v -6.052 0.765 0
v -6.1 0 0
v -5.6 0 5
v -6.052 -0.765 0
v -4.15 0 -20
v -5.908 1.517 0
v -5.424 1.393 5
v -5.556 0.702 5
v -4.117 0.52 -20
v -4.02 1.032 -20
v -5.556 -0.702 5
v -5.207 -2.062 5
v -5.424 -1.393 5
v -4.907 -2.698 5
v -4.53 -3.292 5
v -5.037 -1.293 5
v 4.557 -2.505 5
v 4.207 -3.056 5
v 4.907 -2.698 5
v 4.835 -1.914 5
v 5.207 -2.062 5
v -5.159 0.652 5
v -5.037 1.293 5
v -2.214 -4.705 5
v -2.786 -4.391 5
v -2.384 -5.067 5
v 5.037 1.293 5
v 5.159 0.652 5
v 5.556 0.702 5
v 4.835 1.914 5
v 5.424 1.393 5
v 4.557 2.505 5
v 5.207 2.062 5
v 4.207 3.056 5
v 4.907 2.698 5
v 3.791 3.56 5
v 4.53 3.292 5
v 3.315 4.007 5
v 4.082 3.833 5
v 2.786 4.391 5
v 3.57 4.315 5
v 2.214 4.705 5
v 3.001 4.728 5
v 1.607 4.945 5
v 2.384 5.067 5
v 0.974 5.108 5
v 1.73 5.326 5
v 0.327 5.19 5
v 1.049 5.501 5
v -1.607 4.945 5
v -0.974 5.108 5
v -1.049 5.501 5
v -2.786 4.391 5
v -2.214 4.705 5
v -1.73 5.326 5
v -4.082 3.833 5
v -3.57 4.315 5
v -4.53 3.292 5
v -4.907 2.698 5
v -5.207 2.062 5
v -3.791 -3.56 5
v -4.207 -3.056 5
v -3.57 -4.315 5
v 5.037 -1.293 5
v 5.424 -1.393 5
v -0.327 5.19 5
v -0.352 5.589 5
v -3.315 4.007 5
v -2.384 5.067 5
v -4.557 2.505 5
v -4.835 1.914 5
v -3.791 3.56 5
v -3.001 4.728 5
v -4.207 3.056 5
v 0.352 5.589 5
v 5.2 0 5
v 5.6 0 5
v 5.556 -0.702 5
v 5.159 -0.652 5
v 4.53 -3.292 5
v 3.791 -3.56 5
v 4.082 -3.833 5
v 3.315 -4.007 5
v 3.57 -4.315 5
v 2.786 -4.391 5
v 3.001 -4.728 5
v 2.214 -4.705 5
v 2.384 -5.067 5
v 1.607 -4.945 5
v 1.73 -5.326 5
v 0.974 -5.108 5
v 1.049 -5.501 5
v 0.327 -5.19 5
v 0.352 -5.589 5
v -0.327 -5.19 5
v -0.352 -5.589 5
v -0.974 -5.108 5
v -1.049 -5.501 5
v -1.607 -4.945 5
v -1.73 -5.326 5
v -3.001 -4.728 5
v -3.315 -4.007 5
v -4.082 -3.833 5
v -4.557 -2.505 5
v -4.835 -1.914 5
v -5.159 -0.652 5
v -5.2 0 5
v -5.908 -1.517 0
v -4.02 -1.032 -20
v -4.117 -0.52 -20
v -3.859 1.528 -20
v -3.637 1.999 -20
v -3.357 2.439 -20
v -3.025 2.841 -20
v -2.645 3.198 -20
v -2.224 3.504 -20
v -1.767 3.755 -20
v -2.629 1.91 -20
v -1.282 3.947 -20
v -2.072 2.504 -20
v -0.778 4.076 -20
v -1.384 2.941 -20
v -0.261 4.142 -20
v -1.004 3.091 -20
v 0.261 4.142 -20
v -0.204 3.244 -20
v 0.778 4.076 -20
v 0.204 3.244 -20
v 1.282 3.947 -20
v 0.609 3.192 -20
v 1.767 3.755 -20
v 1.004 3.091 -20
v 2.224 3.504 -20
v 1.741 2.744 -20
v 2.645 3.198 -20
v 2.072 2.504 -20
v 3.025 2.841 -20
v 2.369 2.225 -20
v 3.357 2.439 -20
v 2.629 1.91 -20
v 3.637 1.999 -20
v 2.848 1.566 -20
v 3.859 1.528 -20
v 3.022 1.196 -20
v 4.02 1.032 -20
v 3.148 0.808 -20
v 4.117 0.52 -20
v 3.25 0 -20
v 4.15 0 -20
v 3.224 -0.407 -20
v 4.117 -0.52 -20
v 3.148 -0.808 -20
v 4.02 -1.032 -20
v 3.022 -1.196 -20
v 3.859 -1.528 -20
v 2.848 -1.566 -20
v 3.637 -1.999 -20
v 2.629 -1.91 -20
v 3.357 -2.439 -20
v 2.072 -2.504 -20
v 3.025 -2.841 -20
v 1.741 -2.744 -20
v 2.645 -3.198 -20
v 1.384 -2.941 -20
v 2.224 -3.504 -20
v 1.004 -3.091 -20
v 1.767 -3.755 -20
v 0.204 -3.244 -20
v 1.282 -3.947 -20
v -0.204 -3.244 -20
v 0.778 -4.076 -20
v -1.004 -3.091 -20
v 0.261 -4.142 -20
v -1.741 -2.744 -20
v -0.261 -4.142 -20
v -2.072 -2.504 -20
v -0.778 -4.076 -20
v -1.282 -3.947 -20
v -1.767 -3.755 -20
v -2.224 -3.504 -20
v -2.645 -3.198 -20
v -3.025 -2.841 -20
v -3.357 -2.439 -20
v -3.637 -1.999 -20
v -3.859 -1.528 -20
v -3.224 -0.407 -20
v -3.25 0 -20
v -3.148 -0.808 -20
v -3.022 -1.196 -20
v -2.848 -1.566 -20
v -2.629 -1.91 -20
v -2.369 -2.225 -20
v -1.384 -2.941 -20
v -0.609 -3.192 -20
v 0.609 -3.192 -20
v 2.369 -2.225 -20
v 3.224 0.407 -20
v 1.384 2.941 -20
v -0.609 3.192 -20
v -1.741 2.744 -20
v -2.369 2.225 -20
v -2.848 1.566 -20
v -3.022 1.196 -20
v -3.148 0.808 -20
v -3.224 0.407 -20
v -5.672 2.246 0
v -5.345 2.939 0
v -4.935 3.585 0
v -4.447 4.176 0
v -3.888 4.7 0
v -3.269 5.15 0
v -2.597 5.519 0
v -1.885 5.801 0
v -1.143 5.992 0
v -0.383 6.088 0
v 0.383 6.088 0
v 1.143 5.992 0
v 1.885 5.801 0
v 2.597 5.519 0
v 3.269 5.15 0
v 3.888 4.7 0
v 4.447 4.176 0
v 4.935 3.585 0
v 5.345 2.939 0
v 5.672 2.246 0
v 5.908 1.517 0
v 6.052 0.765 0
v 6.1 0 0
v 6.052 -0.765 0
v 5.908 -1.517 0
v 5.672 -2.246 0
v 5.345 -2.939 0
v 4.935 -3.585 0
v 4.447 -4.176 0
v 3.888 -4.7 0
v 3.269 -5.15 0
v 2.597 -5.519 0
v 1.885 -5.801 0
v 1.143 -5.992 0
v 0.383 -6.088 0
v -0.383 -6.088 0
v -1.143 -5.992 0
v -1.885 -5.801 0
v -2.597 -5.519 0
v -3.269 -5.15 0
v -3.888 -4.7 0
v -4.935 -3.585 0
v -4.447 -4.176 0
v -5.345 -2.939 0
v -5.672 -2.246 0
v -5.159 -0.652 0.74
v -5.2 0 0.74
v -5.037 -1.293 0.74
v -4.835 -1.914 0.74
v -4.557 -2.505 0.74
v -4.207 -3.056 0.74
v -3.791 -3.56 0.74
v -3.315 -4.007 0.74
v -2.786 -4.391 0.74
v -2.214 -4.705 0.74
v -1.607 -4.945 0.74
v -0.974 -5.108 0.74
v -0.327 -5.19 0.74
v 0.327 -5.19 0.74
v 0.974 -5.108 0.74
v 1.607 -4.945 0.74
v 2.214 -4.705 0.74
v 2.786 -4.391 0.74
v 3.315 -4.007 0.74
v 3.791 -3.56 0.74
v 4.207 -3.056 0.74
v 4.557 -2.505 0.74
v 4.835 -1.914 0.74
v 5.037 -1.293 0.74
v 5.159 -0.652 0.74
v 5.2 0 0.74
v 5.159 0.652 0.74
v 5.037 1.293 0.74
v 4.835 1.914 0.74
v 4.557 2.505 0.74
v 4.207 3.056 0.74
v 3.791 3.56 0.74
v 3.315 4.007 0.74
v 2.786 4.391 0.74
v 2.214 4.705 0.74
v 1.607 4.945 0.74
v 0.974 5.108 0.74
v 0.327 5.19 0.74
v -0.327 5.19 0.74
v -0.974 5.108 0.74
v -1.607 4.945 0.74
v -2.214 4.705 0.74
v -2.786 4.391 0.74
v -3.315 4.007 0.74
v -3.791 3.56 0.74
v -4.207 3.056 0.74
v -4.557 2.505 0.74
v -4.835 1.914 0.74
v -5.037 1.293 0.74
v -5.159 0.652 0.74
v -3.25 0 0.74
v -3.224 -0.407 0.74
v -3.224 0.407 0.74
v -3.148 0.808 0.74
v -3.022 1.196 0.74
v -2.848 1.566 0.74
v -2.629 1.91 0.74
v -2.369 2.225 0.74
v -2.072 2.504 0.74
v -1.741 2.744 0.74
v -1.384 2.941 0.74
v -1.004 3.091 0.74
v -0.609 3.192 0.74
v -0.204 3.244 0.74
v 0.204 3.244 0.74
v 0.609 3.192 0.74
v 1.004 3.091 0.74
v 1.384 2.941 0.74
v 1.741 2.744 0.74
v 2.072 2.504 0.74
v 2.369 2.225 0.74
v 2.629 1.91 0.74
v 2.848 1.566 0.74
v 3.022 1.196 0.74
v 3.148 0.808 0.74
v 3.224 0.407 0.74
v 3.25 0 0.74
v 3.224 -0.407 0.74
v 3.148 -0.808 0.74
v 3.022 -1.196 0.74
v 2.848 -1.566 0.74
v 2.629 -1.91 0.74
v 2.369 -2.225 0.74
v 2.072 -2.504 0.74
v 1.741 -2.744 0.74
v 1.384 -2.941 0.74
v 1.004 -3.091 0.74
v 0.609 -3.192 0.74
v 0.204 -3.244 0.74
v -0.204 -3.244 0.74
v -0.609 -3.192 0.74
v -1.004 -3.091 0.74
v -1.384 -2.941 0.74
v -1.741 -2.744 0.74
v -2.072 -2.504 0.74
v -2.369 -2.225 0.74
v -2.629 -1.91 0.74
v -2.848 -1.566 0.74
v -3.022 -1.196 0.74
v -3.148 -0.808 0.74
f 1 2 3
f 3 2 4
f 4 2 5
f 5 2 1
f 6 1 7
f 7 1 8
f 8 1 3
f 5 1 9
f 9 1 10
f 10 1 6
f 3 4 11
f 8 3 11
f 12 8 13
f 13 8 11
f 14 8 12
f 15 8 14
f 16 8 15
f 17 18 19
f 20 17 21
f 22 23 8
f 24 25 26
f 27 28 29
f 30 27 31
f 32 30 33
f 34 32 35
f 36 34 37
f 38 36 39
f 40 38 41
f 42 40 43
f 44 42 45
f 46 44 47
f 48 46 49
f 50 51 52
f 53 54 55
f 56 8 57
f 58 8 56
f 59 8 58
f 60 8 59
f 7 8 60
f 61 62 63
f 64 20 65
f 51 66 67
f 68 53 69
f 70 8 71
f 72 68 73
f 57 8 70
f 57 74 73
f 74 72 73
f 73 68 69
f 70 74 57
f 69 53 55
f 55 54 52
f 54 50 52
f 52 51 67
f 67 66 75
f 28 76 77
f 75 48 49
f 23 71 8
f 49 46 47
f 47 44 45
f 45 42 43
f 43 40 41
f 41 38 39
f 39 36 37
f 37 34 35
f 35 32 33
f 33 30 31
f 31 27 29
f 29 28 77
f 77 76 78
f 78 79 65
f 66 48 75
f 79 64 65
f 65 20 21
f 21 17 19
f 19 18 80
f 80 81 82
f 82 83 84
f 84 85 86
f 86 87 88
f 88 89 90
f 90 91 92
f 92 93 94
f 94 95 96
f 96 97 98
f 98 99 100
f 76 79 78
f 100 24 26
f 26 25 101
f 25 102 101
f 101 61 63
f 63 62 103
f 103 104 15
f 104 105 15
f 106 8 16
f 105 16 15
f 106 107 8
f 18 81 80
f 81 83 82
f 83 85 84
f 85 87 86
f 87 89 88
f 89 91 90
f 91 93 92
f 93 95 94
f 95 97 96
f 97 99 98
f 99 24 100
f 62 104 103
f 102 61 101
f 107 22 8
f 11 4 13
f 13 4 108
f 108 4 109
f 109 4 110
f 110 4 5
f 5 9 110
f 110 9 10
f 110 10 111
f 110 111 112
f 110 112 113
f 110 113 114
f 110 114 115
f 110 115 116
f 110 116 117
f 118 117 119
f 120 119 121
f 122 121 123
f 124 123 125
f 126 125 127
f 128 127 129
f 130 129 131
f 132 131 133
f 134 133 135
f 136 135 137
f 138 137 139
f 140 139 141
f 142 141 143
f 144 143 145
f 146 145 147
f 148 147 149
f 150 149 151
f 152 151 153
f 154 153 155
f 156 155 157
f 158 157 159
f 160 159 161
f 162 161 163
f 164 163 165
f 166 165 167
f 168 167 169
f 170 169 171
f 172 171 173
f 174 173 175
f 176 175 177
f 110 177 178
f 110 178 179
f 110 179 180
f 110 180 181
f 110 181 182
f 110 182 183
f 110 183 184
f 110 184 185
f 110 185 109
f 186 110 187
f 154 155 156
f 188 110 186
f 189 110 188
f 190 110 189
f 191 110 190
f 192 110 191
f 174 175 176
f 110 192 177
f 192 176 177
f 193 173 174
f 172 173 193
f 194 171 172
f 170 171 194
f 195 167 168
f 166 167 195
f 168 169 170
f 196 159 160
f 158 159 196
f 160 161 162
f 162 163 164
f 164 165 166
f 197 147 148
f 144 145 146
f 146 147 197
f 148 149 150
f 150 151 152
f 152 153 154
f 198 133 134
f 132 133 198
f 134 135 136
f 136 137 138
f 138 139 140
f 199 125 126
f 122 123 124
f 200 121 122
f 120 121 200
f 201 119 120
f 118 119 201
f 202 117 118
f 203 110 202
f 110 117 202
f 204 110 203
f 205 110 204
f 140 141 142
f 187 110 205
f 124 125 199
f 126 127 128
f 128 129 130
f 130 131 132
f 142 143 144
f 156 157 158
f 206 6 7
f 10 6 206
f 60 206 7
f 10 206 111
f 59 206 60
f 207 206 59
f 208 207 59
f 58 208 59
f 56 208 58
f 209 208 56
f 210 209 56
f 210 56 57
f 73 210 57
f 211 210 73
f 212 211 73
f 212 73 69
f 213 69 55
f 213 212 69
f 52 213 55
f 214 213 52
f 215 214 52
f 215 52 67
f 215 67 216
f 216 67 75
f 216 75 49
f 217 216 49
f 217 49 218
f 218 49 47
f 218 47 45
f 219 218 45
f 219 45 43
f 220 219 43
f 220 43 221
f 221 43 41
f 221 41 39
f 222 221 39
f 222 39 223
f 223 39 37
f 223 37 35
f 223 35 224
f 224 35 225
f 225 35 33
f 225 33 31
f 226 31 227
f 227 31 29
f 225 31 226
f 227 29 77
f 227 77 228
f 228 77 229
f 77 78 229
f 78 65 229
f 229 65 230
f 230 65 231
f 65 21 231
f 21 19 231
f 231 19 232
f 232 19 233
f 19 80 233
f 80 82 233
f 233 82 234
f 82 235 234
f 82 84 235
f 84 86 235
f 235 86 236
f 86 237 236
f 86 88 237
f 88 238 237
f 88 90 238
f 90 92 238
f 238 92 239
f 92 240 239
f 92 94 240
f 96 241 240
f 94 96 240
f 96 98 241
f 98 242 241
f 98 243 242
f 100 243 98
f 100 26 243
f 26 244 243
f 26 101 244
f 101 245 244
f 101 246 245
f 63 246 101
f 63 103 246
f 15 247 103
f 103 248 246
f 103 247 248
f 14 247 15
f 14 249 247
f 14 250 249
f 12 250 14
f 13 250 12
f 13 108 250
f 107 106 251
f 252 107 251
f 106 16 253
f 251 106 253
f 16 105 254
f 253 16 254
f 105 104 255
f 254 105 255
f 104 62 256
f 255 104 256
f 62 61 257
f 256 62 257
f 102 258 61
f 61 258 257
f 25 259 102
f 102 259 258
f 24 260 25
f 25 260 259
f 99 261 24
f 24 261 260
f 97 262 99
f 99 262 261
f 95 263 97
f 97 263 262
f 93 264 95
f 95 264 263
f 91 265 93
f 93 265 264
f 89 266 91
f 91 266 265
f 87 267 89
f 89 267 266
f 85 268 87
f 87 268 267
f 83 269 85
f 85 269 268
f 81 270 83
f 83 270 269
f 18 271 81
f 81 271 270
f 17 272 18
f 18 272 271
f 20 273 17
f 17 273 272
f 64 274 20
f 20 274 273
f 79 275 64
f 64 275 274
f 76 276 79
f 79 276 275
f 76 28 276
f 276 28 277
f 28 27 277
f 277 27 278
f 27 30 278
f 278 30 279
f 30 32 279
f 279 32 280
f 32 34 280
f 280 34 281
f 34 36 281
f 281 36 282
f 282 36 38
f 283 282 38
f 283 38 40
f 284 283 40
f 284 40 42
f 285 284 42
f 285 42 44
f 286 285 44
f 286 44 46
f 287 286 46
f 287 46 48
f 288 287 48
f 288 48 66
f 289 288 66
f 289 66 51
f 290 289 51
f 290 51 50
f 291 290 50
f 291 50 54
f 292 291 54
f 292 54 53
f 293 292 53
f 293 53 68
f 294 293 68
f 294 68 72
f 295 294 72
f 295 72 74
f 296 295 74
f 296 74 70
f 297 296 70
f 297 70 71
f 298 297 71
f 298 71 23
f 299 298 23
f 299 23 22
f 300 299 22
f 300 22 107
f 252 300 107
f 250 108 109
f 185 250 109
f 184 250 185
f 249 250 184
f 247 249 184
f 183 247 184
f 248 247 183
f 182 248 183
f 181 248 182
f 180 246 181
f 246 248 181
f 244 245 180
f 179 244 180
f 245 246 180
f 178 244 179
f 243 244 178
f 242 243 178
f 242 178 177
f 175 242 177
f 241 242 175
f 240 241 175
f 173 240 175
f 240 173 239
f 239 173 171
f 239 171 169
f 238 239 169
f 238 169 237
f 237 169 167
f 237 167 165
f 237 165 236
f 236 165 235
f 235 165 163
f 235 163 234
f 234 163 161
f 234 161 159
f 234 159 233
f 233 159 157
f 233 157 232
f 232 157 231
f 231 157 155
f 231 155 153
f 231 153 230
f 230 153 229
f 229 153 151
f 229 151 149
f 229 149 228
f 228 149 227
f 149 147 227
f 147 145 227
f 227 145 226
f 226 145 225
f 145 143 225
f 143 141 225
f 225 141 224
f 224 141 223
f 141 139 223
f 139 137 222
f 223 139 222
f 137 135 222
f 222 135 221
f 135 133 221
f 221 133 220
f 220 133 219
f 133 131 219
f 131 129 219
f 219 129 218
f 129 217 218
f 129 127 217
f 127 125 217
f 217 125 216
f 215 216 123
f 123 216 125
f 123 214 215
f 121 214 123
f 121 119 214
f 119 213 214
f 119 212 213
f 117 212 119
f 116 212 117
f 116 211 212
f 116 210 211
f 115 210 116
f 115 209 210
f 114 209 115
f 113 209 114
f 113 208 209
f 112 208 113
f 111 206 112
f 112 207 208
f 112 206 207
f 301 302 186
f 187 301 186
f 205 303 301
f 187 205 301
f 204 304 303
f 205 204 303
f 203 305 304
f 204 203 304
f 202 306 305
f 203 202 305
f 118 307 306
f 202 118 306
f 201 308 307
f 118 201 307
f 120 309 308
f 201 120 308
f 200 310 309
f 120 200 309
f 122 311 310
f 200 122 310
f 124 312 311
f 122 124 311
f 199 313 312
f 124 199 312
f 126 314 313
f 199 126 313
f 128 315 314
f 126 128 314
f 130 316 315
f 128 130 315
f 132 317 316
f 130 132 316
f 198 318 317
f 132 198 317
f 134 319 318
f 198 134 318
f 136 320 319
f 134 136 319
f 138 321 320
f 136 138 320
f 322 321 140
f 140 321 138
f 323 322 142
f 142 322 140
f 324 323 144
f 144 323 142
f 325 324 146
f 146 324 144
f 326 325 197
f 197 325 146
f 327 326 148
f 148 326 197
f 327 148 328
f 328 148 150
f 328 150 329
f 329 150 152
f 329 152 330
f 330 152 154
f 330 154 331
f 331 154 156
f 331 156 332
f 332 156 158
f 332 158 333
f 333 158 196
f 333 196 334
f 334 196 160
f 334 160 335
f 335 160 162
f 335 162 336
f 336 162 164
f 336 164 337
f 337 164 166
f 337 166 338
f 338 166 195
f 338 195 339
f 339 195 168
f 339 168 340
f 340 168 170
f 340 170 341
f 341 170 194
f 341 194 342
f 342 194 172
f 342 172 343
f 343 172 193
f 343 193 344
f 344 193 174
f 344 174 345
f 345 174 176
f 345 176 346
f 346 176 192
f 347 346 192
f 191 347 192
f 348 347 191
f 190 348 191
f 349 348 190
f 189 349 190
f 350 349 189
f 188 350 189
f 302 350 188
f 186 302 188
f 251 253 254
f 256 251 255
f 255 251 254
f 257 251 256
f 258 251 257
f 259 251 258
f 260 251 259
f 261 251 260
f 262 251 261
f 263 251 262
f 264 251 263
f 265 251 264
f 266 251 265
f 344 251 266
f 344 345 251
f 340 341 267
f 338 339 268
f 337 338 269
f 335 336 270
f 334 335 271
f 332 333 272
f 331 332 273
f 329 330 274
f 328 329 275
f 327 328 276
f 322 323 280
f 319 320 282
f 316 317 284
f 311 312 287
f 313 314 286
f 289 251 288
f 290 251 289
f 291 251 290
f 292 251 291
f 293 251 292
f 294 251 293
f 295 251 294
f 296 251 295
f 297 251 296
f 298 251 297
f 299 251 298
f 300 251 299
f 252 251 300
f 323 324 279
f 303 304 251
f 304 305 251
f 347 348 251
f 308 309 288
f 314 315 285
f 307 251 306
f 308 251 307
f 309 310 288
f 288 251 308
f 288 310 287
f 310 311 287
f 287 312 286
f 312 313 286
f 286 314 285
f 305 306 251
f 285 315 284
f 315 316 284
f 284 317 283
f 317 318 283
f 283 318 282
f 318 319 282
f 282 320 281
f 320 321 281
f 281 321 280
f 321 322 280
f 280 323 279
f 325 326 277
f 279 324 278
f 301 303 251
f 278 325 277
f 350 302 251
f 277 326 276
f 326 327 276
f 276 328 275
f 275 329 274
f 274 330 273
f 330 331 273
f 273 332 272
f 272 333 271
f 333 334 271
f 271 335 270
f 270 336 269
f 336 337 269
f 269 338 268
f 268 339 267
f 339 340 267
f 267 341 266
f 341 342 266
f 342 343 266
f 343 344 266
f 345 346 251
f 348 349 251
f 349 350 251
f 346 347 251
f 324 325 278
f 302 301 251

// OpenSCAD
CarbonOD = 6.0+0.30;
MagneticOD_big = 12.0 +0.2;
MagneticThick_big = 4.0+2.0+0.3;
length1_big = 10.0;
length2_big = 17.0;
wallThickness = 1.0;
err = 0.1;
$fn = 50;


MagneticOD_sml = 10 +0.2;
MagneticThick_sml = 2.76+1.5;
length1_sml = 5.0; //was 10.0
length2_sml = 20.0; // was 17.0




module connector_big(){
	difference(){
		hull(){
			cylinder(h=length1_big, r= MagneticOD_big/2 + wallThickness);
			translate([0,0,-length2_big]) cylinder(h=1, r= CarbonOD/2 + wallThickness);
		}
	translate([0,0,length1_big-MagneticThick_big]) cylinder(h=MagneticThick_big+err, r = MagneticOD_big/2 + err);
	translate([0,0, -length2_big-err]) cylinder(h=length2_big + length1_big, r=CarbonOD/2 + err);
	}
}


module connector_sml(){
	difference(){
		hull(){
			cylinder(h=length1_sml, r1= MagneticOD_sml/2 + wallThickness, r2 =  MagneticOD_sml/2 + wallThickness/2); //remove r2 if you want to change to old style~
			translate([0,0,-length2_sml]) cylinder(h=0.1, r= CarbonOD/2 + wallThickness);
		}
	translate([0,0,length1_sml-MagneticThick_sml]) cylinder(h=MagneticThick_sml+err, r = MagneticOD_sml/2 + err);
	translate([0,0, -length2_sml-err]) cylinder(h=length2_sml + length1_sml, r=CarbonOD/2 + err);
	}
}

//connector_big();

connector_sml();
